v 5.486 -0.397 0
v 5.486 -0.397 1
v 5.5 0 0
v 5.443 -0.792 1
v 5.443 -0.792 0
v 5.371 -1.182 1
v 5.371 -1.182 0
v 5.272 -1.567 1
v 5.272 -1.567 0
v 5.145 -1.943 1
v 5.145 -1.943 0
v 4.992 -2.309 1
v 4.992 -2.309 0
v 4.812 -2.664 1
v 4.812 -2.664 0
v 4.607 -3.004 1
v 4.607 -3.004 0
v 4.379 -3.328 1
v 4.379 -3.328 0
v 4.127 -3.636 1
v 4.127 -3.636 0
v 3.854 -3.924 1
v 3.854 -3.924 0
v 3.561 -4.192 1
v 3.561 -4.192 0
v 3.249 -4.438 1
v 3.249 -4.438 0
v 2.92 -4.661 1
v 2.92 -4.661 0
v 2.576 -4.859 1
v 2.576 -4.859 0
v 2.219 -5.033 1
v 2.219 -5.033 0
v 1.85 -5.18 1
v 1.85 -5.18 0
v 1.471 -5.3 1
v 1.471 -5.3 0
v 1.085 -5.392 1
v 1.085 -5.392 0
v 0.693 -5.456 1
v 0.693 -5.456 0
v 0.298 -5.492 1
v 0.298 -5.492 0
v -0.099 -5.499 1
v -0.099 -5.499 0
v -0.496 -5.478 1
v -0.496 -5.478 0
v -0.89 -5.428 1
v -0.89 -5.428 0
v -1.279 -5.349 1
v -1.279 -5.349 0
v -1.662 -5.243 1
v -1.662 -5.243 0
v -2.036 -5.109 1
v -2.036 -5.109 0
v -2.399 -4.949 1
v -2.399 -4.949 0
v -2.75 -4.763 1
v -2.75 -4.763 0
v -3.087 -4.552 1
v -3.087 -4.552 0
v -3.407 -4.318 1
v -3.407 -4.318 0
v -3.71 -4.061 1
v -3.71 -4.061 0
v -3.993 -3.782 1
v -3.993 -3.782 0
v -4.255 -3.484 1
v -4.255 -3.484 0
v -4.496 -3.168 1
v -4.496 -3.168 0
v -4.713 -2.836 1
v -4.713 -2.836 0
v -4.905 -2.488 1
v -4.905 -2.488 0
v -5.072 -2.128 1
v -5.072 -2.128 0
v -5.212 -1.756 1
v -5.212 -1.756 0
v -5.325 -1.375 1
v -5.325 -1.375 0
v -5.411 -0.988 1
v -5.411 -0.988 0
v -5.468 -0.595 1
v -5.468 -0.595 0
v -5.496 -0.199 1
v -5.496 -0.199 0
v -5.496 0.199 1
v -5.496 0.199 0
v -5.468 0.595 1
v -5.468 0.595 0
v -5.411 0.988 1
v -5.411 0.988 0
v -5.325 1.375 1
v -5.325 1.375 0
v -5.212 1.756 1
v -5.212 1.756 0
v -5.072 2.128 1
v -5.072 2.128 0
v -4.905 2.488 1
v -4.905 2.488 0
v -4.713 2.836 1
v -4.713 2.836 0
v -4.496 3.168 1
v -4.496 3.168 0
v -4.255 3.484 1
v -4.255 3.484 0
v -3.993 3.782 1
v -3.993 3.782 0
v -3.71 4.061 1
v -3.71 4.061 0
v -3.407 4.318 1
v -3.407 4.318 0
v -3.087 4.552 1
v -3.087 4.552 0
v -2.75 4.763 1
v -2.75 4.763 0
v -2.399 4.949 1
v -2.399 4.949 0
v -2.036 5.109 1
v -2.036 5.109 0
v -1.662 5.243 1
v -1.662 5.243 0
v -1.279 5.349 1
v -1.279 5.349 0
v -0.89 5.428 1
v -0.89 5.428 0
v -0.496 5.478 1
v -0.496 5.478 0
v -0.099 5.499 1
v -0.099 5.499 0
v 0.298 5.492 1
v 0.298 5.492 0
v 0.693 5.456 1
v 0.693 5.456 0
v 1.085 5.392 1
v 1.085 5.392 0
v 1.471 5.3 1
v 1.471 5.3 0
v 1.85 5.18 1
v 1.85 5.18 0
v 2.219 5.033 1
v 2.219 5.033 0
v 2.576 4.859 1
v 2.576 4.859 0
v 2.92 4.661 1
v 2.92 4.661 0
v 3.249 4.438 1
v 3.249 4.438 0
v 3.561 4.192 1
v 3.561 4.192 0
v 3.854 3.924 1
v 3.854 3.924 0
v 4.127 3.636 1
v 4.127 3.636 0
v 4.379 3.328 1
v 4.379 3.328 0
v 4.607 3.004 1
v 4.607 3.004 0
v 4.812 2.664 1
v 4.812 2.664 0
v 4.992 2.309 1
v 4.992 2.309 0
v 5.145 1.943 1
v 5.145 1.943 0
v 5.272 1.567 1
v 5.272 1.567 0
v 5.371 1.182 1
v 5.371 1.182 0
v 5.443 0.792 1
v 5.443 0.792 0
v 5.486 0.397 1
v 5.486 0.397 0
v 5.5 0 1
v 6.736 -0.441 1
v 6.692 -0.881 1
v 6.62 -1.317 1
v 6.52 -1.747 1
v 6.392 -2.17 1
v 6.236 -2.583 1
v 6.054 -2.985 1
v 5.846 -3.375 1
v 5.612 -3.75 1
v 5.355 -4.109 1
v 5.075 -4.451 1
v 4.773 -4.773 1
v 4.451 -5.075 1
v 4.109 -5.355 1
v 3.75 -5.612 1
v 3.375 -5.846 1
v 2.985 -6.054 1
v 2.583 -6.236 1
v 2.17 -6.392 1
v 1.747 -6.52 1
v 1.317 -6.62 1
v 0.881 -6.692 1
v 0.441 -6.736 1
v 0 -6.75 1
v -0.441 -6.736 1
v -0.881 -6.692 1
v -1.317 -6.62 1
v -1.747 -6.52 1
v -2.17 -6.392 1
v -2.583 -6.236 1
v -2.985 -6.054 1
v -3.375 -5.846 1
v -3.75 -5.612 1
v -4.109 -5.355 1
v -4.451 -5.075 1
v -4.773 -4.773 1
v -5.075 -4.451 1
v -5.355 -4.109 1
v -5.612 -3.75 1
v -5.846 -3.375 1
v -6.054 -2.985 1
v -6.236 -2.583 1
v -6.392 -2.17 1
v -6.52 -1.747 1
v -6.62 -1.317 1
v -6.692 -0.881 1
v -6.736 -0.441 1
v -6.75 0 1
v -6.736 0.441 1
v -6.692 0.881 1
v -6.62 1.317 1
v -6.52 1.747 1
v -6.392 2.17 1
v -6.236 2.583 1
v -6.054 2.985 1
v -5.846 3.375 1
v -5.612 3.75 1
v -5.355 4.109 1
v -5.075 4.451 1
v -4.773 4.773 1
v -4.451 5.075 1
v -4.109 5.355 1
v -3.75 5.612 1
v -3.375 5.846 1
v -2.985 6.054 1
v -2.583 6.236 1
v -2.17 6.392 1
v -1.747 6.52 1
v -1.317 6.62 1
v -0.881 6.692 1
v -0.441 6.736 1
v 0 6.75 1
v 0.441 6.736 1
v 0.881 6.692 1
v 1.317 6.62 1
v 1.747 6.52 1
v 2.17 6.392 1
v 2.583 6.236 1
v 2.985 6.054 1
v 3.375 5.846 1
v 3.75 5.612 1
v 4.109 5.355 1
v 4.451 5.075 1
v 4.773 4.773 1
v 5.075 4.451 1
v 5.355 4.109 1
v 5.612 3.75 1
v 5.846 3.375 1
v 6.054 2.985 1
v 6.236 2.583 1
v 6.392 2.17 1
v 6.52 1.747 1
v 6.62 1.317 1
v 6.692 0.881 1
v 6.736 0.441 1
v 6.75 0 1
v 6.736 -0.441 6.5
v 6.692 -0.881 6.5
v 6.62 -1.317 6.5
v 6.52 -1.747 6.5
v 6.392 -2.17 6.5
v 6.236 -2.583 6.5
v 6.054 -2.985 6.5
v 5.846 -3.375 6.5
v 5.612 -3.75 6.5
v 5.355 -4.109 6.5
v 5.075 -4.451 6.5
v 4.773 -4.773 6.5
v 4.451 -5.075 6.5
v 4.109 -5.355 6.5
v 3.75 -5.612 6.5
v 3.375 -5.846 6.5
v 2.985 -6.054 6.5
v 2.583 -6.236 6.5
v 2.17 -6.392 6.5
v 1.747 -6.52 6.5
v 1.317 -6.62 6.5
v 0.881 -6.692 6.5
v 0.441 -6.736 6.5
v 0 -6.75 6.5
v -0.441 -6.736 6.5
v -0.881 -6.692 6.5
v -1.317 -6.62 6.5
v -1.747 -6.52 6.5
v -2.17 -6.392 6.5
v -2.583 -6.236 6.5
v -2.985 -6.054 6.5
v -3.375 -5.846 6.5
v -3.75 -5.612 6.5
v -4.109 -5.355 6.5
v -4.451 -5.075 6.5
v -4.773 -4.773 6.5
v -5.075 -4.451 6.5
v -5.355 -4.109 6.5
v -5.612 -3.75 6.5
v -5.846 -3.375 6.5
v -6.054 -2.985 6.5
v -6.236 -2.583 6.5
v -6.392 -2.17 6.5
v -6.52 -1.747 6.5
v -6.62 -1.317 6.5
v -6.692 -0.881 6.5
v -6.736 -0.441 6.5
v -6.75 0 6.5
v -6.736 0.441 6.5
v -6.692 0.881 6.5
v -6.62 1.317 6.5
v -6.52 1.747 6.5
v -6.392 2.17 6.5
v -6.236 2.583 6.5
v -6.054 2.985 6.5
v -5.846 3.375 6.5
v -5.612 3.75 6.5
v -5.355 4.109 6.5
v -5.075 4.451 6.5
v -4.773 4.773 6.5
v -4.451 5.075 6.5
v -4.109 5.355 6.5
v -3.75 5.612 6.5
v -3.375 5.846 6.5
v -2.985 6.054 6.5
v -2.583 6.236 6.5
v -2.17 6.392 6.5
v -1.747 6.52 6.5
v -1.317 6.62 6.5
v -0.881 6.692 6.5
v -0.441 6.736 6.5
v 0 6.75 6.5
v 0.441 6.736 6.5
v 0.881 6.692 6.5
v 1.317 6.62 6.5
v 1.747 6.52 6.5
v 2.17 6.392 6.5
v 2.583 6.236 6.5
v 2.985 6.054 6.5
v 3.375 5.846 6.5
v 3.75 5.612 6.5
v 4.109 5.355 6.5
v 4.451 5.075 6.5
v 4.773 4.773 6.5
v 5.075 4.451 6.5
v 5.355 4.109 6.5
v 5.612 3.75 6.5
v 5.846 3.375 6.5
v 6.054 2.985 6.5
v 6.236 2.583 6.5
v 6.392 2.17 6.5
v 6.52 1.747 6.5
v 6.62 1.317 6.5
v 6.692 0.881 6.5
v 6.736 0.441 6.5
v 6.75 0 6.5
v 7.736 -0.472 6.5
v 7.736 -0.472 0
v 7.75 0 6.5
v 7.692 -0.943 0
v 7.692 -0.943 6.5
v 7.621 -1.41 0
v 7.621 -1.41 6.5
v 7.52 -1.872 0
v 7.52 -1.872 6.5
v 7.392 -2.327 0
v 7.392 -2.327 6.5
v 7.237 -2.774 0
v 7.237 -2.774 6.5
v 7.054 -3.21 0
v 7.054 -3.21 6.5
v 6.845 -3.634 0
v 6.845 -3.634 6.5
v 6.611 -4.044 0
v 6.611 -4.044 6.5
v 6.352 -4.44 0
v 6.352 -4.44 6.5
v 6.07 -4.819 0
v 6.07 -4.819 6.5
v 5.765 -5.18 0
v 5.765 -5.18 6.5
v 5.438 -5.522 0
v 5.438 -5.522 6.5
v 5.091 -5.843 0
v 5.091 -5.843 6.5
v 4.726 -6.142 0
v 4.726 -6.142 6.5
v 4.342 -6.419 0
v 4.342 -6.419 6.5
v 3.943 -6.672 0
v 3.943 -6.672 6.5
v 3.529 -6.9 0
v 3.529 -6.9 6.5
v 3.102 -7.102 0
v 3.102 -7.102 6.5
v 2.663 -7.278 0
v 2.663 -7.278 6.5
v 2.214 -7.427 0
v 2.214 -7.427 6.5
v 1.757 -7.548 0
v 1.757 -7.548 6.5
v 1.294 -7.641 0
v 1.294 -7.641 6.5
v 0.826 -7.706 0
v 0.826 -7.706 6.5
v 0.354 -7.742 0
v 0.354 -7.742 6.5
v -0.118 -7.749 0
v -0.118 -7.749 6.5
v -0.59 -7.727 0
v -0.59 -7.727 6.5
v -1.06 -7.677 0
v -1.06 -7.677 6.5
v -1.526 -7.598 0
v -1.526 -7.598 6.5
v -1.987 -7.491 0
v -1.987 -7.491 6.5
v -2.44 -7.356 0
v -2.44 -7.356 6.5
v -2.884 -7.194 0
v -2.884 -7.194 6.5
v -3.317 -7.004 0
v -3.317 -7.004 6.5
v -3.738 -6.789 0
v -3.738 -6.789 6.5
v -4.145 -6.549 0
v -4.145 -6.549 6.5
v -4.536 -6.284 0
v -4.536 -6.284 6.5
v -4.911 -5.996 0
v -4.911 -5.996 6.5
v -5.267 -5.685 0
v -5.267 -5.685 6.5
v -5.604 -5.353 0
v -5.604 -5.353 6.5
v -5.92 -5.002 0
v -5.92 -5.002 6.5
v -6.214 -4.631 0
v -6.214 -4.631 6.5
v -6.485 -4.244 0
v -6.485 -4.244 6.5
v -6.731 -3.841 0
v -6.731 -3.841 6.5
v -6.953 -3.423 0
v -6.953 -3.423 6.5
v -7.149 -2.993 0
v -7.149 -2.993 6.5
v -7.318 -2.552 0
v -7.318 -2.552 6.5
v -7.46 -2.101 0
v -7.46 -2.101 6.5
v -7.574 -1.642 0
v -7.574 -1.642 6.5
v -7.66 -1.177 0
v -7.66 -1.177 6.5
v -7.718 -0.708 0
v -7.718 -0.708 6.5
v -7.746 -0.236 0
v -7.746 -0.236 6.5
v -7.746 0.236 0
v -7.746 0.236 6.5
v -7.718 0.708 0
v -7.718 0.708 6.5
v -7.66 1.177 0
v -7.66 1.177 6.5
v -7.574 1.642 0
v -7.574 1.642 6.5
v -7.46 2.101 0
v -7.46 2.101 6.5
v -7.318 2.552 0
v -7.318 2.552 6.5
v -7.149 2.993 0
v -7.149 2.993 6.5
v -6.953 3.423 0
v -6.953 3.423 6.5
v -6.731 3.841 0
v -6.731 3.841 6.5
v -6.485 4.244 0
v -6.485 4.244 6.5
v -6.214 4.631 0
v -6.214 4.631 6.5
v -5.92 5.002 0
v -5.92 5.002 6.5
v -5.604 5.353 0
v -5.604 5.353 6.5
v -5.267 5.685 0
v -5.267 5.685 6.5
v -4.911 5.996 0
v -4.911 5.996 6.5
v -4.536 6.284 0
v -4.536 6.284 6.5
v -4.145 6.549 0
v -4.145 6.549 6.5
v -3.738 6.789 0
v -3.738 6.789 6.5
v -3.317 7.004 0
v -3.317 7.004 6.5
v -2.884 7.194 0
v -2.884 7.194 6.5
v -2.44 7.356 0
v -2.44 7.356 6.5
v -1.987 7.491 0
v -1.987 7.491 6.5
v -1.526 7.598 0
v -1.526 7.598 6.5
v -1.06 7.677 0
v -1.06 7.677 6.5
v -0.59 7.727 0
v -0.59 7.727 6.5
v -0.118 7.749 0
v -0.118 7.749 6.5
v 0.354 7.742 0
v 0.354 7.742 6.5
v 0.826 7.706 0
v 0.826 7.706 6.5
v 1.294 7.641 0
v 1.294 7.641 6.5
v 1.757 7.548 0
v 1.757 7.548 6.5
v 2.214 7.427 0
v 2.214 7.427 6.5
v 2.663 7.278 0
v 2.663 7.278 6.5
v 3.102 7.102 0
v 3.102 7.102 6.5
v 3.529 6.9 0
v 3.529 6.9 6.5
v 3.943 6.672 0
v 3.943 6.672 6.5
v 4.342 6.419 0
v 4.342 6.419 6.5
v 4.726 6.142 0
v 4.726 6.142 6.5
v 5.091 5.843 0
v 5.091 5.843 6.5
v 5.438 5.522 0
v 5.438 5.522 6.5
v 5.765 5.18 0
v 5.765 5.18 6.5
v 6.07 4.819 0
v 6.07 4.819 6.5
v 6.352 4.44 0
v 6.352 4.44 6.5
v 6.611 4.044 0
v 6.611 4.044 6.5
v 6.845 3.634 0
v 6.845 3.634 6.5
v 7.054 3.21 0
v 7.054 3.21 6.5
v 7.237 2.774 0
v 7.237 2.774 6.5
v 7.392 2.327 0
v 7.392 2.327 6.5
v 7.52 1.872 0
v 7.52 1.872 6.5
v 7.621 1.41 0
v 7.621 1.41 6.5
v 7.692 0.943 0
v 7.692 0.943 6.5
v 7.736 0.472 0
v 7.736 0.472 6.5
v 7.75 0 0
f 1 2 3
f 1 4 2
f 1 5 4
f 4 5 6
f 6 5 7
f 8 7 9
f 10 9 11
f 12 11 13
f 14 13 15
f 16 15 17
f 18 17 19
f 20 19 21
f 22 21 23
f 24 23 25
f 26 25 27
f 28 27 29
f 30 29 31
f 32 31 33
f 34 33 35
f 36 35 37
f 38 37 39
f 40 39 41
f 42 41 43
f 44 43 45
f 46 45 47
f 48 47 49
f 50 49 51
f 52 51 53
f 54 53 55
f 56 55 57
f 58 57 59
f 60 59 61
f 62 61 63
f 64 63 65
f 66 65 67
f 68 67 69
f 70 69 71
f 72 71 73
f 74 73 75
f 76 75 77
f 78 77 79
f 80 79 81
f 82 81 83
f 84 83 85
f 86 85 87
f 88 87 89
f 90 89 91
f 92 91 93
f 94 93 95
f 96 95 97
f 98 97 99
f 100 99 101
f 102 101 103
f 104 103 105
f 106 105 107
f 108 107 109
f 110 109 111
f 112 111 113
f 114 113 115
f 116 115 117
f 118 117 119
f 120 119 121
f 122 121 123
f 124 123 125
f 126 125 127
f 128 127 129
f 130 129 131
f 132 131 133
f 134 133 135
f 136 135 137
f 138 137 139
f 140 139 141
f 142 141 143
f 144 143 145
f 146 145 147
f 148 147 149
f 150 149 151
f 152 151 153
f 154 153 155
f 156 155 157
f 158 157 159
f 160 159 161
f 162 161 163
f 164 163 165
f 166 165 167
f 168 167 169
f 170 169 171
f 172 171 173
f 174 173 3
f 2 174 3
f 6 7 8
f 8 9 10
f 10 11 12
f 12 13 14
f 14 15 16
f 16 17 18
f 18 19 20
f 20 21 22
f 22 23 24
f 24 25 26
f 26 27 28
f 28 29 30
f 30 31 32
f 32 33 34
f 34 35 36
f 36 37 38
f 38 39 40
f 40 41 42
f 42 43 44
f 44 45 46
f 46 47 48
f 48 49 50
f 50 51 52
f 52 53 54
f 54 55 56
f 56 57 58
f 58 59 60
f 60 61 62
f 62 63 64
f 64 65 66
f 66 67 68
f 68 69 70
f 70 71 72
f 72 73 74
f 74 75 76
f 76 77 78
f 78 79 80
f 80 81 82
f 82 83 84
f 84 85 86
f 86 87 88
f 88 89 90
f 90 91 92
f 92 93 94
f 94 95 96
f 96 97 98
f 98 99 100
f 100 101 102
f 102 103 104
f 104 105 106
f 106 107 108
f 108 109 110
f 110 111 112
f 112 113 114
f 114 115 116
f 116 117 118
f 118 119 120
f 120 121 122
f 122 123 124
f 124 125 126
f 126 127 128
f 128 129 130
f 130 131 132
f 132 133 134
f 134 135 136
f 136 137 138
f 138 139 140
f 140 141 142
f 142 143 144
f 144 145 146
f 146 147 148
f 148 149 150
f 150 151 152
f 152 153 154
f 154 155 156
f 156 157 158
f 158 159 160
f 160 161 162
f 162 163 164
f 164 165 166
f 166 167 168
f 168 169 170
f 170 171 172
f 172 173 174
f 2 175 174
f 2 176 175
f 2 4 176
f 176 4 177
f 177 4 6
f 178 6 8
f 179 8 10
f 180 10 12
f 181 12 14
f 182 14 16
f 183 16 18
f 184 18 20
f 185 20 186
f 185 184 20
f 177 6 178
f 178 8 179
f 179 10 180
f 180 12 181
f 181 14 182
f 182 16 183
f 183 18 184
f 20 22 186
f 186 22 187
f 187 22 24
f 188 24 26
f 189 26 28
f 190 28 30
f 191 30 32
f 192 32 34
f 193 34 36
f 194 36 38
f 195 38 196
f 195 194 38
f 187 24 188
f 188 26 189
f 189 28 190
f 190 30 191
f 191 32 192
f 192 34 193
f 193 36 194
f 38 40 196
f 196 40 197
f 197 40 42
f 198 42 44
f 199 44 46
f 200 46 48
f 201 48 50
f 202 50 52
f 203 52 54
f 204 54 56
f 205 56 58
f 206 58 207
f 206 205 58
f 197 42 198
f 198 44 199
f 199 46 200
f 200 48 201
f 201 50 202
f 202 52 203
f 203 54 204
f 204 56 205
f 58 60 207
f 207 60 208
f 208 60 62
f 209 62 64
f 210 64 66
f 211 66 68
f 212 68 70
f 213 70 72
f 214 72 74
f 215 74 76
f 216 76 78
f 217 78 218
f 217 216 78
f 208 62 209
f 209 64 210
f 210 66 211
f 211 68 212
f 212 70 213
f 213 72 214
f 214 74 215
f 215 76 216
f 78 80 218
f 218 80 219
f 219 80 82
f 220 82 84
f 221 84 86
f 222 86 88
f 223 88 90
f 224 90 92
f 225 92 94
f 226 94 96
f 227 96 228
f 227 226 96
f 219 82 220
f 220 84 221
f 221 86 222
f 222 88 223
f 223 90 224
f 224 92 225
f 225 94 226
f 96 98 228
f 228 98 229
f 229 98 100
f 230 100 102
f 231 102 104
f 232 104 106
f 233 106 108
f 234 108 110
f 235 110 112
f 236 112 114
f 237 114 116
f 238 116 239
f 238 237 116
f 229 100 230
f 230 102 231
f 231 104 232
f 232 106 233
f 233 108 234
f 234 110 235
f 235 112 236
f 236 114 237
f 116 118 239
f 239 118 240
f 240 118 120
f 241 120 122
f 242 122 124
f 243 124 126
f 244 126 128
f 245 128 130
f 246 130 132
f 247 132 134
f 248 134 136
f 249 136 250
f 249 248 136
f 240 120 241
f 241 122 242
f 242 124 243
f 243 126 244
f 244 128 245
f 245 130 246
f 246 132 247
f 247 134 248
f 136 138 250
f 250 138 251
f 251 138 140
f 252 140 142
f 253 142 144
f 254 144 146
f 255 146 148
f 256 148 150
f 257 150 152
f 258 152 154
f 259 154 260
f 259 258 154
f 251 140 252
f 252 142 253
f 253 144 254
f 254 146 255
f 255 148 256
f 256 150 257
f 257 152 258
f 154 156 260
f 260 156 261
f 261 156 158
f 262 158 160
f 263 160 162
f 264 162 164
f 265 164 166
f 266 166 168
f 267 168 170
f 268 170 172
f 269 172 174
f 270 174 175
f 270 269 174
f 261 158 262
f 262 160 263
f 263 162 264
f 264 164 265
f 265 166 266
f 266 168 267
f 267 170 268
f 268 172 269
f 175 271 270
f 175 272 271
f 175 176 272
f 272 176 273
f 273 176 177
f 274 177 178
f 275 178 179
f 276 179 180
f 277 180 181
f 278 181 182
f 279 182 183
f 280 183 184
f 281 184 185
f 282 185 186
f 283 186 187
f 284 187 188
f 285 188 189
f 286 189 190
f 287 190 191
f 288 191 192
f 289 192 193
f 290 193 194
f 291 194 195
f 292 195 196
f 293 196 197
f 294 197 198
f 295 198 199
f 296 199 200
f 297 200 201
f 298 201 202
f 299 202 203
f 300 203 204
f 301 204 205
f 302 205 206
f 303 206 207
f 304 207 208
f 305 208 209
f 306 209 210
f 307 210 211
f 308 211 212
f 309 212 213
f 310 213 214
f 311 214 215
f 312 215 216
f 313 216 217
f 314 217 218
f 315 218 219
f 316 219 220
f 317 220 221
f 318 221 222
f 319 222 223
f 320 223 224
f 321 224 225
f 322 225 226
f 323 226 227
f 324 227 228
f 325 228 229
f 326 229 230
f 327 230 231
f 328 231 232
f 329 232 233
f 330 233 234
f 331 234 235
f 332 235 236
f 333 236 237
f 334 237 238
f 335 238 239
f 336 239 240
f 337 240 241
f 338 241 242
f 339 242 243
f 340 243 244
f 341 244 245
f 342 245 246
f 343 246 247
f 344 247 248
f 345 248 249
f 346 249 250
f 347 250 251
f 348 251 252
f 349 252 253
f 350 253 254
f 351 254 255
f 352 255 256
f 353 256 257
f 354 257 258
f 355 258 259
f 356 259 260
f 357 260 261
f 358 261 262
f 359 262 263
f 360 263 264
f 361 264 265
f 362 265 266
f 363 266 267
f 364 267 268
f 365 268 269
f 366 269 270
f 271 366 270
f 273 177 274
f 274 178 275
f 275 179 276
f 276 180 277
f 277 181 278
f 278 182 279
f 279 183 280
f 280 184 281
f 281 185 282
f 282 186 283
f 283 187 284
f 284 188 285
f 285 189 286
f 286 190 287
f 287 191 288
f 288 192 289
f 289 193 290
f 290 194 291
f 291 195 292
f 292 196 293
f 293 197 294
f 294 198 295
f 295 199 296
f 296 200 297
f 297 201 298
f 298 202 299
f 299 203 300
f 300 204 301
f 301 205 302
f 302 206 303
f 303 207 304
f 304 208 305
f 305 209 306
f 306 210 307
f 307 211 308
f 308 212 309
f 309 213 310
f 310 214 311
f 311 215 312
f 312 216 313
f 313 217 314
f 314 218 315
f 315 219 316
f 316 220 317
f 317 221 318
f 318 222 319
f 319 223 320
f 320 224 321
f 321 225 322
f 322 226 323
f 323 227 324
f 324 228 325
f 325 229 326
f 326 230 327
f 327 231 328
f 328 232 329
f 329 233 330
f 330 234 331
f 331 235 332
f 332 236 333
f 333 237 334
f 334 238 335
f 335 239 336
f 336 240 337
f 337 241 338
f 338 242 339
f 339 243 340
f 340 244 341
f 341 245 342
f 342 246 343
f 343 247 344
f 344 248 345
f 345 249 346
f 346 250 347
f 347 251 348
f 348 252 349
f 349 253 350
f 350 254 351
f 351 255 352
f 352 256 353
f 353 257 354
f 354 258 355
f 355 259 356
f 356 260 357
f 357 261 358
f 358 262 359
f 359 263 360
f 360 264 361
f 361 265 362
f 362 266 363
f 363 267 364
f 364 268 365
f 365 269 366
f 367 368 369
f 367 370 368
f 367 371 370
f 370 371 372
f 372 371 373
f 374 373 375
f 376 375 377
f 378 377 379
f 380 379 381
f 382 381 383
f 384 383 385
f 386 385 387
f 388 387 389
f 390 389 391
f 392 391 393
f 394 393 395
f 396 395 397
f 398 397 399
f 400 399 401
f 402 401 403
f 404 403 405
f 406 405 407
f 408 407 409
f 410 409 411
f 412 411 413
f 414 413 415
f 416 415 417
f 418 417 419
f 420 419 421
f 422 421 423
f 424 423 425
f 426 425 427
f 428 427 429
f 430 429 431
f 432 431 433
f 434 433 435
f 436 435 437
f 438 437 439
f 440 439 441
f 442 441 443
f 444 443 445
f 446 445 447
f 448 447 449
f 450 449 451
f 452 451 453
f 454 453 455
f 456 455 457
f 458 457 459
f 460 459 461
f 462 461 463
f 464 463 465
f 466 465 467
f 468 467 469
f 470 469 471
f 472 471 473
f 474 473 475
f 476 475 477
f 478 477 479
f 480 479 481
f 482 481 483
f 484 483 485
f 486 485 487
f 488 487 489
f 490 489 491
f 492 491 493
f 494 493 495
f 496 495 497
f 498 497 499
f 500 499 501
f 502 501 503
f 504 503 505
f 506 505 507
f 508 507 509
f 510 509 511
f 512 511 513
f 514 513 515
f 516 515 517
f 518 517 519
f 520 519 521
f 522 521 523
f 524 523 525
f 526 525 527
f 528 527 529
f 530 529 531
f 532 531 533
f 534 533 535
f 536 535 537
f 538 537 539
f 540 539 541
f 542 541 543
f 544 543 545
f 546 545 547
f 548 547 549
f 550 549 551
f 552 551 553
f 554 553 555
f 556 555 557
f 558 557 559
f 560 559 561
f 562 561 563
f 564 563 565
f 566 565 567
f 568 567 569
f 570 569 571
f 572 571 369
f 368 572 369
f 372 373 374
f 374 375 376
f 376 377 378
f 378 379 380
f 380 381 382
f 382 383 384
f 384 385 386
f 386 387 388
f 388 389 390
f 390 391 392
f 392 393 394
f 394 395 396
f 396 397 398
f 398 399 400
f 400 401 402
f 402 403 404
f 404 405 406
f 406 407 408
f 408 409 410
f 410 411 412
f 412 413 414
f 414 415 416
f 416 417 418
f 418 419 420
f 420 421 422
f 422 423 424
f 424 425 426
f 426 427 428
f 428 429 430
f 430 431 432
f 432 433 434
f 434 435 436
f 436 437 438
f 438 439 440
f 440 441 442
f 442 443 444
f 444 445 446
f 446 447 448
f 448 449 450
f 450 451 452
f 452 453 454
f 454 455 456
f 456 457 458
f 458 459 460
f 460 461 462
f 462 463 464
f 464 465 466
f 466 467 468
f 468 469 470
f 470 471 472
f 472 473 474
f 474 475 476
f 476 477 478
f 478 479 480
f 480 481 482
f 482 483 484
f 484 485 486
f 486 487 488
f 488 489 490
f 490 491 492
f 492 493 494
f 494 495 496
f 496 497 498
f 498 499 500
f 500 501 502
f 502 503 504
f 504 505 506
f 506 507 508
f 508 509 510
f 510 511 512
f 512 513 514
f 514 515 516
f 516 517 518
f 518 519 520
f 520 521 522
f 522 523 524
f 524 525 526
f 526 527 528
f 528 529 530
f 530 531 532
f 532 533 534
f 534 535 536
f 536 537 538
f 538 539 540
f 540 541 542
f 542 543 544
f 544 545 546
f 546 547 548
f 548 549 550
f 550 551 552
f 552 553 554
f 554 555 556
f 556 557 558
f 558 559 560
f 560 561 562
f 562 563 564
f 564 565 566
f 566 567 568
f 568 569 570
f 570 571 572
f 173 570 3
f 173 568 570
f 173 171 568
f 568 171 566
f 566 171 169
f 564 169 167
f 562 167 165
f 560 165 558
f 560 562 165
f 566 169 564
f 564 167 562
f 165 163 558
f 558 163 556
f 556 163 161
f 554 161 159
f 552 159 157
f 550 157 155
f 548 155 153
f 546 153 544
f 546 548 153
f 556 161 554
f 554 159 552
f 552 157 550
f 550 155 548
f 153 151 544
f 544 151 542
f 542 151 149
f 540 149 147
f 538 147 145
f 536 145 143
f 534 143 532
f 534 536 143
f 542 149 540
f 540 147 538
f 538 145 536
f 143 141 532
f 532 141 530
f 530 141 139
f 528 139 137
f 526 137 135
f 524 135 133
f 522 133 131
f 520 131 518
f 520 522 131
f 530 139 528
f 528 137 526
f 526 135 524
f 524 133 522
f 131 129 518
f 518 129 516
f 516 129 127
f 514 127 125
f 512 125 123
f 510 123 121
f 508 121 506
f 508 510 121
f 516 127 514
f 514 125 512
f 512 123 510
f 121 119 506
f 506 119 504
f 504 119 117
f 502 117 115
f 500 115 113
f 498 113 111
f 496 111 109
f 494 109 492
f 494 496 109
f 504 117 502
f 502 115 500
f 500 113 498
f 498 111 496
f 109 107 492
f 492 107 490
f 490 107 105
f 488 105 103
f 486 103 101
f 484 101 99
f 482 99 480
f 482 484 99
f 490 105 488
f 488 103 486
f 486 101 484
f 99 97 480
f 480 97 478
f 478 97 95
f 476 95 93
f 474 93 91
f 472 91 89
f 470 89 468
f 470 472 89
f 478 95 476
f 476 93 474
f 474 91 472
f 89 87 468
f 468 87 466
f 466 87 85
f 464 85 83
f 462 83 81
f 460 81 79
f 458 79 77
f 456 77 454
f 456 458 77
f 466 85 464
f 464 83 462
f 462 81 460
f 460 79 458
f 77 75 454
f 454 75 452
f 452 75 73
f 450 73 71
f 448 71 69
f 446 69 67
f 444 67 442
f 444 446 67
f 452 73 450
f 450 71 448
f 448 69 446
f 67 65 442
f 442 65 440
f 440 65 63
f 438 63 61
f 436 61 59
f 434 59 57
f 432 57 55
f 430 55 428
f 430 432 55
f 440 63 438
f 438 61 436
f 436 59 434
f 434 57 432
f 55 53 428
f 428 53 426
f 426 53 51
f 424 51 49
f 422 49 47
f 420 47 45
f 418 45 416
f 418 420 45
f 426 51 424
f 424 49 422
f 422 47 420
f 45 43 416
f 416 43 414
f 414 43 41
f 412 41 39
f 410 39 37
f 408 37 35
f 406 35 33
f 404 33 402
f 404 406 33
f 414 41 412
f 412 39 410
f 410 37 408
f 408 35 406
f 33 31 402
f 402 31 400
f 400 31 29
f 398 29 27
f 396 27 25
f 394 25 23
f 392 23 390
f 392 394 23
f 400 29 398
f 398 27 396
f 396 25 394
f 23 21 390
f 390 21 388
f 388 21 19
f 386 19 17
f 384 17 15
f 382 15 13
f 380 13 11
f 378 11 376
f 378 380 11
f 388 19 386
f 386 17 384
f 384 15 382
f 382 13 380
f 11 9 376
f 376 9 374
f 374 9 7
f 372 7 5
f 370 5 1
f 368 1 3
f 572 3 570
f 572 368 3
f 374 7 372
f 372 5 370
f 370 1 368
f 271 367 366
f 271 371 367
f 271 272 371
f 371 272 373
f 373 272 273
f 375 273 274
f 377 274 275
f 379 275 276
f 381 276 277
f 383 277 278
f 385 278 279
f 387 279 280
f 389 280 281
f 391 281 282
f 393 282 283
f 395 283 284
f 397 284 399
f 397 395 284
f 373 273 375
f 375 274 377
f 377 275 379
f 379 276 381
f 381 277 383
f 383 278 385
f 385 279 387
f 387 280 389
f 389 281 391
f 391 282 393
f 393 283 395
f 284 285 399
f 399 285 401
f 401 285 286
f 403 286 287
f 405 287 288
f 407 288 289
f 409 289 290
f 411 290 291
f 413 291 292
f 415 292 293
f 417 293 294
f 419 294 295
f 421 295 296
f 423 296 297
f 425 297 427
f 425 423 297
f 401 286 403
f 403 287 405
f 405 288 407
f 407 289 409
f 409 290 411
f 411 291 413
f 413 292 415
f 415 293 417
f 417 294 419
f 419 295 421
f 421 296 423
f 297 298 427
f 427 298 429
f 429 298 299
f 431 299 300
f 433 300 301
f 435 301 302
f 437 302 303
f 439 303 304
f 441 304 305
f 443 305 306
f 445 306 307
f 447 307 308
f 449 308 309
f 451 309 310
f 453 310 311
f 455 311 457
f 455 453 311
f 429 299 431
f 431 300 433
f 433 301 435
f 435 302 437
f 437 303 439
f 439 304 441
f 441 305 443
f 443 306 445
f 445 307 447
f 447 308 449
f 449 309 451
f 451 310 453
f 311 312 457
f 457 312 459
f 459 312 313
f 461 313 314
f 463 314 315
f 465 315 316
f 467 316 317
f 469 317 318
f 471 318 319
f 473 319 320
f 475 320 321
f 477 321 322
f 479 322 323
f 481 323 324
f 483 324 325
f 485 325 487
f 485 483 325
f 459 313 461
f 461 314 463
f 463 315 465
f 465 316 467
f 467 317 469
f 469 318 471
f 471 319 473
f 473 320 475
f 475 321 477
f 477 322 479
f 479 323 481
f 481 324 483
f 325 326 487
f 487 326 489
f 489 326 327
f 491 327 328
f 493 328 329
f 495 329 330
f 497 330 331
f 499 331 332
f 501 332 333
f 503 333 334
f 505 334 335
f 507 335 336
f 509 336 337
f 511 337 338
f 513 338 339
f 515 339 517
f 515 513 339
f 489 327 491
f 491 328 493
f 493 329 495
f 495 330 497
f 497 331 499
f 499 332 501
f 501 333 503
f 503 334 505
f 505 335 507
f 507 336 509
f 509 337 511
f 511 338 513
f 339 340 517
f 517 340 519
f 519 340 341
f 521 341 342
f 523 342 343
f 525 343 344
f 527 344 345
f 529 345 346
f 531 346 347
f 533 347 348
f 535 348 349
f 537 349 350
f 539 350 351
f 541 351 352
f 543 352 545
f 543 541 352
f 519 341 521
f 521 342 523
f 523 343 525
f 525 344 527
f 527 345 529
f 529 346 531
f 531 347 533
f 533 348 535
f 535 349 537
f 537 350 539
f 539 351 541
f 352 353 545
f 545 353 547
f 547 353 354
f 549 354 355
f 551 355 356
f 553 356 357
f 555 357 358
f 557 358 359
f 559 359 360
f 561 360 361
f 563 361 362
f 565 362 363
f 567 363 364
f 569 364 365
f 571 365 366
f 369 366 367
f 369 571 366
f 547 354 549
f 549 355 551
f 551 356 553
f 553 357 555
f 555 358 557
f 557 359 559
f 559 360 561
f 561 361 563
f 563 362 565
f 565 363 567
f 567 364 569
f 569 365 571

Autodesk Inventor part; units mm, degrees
ref_plane "YZ Plane" through (0, 0, 0) normal (1, 0, 0) x (0, 1, 0)
ref_plane "XZ Plane" through (0, 0, 0) normal (0, 1, 0) x (-1, 0, 0)
ref_plane "XY Plane" through (0, 0, 0) normal (0, 0, 1) x (1, 0, 0)
sketch "Sketch1" plane through (0, 0, 0) normal (0, 0, 1) x (1, 0, 0)
  circle A0 centre (0, 0) radius 6.75
  circle A1 centre (0, 0) radius 7.75
  dimension "d0" = 13.5
  dimension "d1" = 15.5
extrude "Extrusion1" add sketch "Sketch1" along normal blind 6.5
sketch "Sketch2" plane through (0, 0, 0) normal (0, 0, 1) x (1, 0, 0)
  circle A0 centre (0, 0) radius 6.75
  dimension "d4" = 13.5
extrude "Extrusion2" add sketch "Sketch2" along normal blind 1
sketch "Sketch3" plane through (0, 0, 1) normal (0, 0, 1) x (1, 0, 0)
  circle A0 centre (0, 0) radius 5.5
  dimension "d7" = 11
extrude "Extrusion3" cut sketch "Sketch3" against normal blind 1
properties part number "HubTest13mm"
